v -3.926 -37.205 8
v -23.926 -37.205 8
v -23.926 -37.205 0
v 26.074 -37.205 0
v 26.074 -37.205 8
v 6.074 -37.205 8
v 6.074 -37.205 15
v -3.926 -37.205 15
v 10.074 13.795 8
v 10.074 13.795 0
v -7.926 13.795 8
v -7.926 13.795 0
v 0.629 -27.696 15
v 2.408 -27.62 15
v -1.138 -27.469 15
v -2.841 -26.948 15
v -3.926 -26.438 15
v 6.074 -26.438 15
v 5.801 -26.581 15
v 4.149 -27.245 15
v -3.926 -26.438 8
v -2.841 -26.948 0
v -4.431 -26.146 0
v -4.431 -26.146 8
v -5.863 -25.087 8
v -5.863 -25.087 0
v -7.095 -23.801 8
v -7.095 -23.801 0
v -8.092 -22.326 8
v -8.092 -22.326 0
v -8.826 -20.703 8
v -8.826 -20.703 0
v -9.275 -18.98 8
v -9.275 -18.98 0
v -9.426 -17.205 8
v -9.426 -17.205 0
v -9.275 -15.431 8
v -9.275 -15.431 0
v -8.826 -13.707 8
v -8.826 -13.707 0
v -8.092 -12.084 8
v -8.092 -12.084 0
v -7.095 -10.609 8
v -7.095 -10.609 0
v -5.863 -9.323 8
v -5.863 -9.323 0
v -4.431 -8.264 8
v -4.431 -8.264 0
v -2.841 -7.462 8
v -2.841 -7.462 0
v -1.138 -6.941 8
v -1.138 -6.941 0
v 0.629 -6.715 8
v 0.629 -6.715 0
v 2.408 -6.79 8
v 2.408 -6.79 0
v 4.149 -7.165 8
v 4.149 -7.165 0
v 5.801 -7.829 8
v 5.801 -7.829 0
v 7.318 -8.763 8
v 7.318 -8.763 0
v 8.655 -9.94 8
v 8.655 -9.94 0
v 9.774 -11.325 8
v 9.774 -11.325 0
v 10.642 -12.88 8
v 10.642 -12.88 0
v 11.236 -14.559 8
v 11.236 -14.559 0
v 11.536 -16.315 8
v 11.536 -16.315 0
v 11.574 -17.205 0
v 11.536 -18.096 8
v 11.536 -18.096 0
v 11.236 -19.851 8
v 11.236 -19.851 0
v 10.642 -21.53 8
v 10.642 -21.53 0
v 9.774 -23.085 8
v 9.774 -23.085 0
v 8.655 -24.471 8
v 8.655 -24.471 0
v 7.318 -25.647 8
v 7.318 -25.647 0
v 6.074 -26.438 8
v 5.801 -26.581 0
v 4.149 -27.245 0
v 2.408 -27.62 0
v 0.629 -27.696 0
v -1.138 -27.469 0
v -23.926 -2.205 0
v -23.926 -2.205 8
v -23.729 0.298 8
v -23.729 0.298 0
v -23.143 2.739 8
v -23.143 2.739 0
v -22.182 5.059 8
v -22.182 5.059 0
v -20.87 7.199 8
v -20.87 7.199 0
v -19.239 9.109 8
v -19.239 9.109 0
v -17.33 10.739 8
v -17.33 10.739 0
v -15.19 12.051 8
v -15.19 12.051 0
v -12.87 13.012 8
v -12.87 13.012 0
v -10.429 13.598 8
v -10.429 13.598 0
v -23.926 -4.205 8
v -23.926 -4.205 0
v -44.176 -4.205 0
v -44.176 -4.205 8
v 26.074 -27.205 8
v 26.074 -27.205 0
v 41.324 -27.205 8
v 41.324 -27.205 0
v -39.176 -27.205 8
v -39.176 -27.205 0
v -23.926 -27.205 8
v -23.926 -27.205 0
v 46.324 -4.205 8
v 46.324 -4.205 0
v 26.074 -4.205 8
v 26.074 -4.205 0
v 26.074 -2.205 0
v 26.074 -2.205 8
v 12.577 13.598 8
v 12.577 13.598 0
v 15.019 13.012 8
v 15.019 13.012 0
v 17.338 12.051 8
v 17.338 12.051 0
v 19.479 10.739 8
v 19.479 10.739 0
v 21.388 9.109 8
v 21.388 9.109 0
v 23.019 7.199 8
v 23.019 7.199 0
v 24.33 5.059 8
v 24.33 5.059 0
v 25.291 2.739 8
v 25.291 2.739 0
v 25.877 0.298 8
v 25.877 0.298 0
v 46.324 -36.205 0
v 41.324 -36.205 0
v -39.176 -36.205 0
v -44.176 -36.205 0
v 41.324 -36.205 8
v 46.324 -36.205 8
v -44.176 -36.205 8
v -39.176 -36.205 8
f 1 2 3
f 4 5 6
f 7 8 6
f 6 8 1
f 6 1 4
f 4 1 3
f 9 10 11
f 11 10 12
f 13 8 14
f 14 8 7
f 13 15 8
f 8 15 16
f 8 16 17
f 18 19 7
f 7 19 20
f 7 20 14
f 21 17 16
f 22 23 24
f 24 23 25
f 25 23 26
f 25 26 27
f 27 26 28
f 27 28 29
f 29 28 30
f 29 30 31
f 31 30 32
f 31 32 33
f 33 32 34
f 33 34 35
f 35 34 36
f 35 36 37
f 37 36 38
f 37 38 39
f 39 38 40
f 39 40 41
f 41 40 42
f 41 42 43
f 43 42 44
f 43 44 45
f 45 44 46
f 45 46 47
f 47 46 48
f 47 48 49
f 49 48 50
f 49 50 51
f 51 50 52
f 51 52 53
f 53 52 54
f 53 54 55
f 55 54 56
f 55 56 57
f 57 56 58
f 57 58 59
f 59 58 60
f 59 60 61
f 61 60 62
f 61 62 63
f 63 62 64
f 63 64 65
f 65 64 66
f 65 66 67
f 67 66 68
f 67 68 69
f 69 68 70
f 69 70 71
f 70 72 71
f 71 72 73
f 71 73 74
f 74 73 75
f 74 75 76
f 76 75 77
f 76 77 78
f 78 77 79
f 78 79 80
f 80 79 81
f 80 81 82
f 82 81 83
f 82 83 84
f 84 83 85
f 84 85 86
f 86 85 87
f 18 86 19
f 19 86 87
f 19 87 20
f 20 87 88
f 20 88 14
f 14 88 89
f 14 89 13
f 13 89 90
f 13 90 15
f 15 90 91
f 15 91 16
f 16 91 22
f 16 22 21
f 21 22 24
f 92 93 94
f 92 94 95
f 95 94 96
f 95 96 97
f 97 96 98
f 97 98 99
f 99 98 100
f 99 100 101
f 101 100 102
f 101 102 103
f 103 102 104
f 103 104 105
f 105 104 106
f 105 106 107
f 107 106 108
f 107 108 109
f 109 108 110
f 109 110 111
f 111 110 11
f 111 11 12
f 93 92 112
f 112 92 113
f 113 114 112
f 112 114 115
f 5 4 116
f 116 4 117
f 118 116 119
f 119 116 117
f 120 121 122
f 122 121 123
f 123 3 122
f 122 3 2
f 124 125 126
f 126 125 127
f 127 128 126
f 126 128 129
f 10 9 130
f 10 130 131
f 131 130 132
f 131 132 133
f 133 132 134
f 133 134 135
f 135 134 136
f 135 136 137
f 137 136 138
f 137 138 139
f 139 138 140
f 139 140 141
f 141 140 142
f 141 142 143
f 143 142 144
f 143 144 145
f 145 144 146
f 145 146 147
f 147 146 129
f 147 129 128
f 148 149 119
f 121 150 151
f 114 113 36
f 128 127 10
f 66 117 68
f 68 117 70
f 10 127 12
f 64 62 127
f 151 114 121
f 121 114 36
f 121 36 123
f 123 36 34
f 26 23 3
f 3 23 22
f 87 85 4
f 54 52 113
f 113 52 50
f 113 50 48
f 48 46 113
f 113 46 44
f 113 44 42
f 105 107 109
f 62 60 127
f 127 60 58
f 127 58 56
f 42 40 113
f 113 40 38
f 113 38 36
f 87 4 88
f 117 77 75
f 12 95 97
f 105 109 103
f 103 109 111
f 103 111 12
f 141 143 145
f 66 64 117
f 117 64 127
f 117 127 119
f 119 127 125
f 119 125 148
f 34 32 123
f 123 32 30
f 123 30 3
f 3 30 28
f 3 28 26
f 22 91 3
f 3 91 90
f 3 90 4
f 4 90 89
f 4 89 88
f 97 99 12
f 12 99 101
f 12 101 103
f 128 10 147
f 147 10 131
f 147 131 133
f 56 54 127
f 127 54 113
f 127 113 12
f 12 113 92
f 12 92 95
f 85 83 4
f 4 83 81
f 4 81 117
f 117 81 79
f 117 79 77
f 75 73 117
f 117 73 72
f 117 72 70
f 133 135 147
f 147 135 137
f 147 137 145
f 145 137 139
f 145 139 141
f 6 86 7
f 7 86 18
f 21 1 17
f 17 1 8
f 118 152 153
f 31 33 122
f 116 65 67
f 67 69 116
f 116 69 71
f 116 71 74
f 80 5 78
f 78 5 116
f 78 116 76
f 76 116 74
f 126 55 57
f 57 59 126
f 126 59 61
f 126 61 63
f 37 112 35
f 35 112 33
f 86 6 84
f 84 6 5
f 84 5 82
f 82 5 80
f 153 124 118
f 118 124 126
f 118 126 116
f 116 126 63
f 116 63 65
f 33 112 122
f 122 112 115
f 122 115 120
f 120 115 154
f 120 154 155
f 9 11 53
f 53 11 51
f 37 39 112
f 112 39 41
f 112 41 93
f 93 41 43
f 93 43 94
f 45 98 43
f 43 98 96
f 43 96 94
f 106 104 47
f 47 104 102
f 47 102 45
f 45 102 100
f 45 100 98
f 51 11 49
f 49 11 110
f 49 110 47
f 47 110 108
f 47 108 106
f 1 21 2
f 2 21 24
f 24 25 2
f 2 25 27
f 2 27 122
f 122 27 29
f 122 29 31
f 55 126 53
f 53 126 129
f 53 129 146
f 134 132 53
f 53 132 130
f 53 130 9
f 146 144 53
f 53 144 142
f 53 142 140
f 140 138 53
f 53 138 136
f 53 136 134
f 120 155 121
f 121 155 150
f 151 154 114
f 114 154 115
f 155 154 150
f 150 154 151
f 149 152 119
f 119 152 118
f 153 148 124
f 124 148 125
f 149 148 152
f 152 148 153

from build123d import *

# Parameters (mm, degrees)
BOSS_EXTRUDE1_DEPTH = 15
SKETCH3_W           = 10
SKETCH3_H           = 10
CUT_EXTRUDE1_DEPTH  = 54.949798285
CUT_EXTRUDE2_DEPTH  = 7
SKETCH5_W           = 5.25
SKETCH5_H           = 8
BOSS_EXTRUDE2_DEPTH = 23
SKETCH5_3_W         = 5
SKETCH5_3_H         = 8
BOSS_EXTRUDE3_DEPTH = 32
SKETCH5_5_W         = 5
SKETCH5_5_H         = 8
BOSS_EXTRUDE4_DEPTH = 32
SKETCH5_6_W         = 5.25
SKETCH5_6_H         = 8
BOSS_EXTRUDE5_DEPTH = 23


with BuildPart() as part:
    # Sketch2 → Boss-Extrude1 (new body)
    with BuildSketch(Plane.XY):
        Polygon((36.074313409, 13.794830372), (-33.925686591, 13.794830372), (-33.925686591, -37.205169628), (1.074313409, -37.205169628), (36.074313409, -37.205169628), align=None)
        with BuildLine():
            ThreePointArc((11.574313409, -17.205169628), (8.498934611, -24.629790831), (1.074313409, -27.705169628))
            ThreePointArc((1.074313409, -27.705169628), (-6.350307794, -9.780548426), (11.574313409, -17.205169628))
        make_face(mode=Mode.SUBTRACT)
    extrude(amount=BOSS_EXTRUDE1_DEPTH)

    # Sketch3 → Cut-Extrude1 (cut, through all)
    with BuildSketch(Plane.XY.offset(15)):
        with Locations((31.074313409, -32.205169628)):
            Rectangle(SKETCH3_W, SKETCH3_H)
        with Locations((-28.925686591, -32.205169628)):
            Rectangle(SKETCH3_W, SKETCH3_H)
        with BuildLine():
            ThreePointArc((-23.925686591, -2.205169628), (-19.23939509, 9.108538871), (-7.925686591, 13.794830372))
            Line((-7.925686591, 13.794830372), (-33.925686591, 13.794830372))
            Line((-33.925686591, 13.794830372), (-33.925686591, -4.205169628))
            Line((-33.925686591, -4.205169628), (-23.925686591, -4.205169628))
            Line((-23.925686591, -4.205169628), (-23.925686591, -2.205169628))
        make_face()
        with BuildLine():
            Line((26.074313409, -4.205169628), (36.074313409, -4.205169628))
            Line((36.074313409, -4.205169628), (36.074313409, 13.794830372))
            Line((36.074313409, 13.794830372), (10.074313409, 13.794830372))
            ThreePointArc((10.074313409, 13.794830372), (21.388021908, 9.108538871), (26.074313409, -2.205169628))
            Line((26.074313409, -2.205169628), (26.074313409, -4.205169628))
        make_face()
    extrude(amount=-CUT_EXTRUDE1_DEPTH, mode=Mode.SUBTRACT)

    # Sketch4 → Cut-Extrude2 (cut)
    with BuildSketch(Plane.XY.offset(15)):
        with BuildLine():
            Line((-3.925686591, -37.205169628), (-3.925686591, -26.438262285))
            ThreePointArc((-3.925686591, -26.438262285), (-4.299232906, -8.184360352), (11.574313409, -17.205169628))
            ThreePointArc((11.574313409, -17.205169628), (10.095122685, -22.578715943), (6.074313409, -26.438262285))
            Line((6.074313409, -26.438262285), (6.074313409, -37.205169628))
            Line((6.074313409, -37.205169628), (26.074313409, -37.205169628))
            Line((26.074313409, -37.205169628), (26.074313409, -27.205169628))
            Line((26.074313409, -27.205169628), (36.074313409, -27.205169628))
            Line((36.074313409, -27.205169628), (36.074313409, -4.205169628))
            Line((36.074313409, -4.205169628), (26.074313409, -4.205169628))
            Line((26.074313409, -4.205169628), (26.074313409, -2.205169628))
            ThreePointArc((26.074313409, -2.205169628), (21.388021908, 9.108538871), (10.074313409, 13.794830372))
            Line((10.074313409, 13.794830372), (-7.925686591, 13.794830372))
            ThreePointArc((-7.925686591, 13.794830372), (-19.23939509, 9.108538871), (-23.925686591, -2.205169628))
            Line((-23.925686591, -2.205169628), (-23.925686591, -4.205169628))
            Line((-23.925686591, -4.205169628), (-33.925686591, -4.205169628))
            Line((-33.925686591, -4.205169628), (-33.925686591, -27.205169628))
            Line((-33.925686591, -27.205169628), (-23.925686591, -27.205169628))
            Line((-23.925686591, -27.205169628), (-23.925686591, -37.205169628))
            Line((-23.925686591, -37.205169628), (-3.925686591, -37.205169628))
        make_face()
    extrude(amount=-CUT_EXTRUDE2_DEPTH, mode=Mode.SUBTRACT)

    # Sketch5 → Boss-Extrude2 (add)
    with BuildSketch(Plane(origin=(0, -4.205169628, 0), x_dir=(1, 0, 0), z_dir=(0, 1, 0))):
        with Locations((-36.550686591, -4)):
            Rectangle(SKETCH5_W, SKETCH5_H)
    extrude(amount=-BOSS_EXTRUDE2_DEPTH)

    # Sketch5<3> → Boss-Extrude3 (add)
    with BuildSketch(Plane(origin=(0, -4.205169628, 0), x_dir=(1, 0, 0), z_dir=(0, 1, 0))):
        with Locations((-41.675686591, -4)):
            Rectangle(SKETCH5_3_W, SKETCH5_3_H)
    extrude(amount=-BOSS_EXTRUDE3_DEPTH)



with BuildPart() as body_2:
    # Sketch5<5> → Boss-Extrude4 (new body)
    with BuildSketch(Plane(origin=(0, -4.205169628, 0), x_dir=(1, 0, 0), z_dir=(0, 1, 0))):
        with Locations((43.824313409, -4)):
            Rectangle(SKETCH5_5_W, SKETCH5_5_H)
    extrude(amount=-BOSS_EXTRUDE4_DEPTH)


with BuildPart() as part_1:
    add(part.part)

    add(body_2.part)  # Boss-Extrude5 merges body 2
    # Sketch5<6> → Boss-Extrude5 (add)
    with BuildSketch(Plane(origin=(0, -4.205169628, 0), x_dir=(1, 0, 0), z_dir=(0, 1, 0))):
        with Locations((38.699313409, -4)):
            Rectangle(SKETCH5_6_W, SKETCH5_6_H)
    extrude(amount=-BOSS_EXTRUDE5_DEPTH)


solid = part_1.part
